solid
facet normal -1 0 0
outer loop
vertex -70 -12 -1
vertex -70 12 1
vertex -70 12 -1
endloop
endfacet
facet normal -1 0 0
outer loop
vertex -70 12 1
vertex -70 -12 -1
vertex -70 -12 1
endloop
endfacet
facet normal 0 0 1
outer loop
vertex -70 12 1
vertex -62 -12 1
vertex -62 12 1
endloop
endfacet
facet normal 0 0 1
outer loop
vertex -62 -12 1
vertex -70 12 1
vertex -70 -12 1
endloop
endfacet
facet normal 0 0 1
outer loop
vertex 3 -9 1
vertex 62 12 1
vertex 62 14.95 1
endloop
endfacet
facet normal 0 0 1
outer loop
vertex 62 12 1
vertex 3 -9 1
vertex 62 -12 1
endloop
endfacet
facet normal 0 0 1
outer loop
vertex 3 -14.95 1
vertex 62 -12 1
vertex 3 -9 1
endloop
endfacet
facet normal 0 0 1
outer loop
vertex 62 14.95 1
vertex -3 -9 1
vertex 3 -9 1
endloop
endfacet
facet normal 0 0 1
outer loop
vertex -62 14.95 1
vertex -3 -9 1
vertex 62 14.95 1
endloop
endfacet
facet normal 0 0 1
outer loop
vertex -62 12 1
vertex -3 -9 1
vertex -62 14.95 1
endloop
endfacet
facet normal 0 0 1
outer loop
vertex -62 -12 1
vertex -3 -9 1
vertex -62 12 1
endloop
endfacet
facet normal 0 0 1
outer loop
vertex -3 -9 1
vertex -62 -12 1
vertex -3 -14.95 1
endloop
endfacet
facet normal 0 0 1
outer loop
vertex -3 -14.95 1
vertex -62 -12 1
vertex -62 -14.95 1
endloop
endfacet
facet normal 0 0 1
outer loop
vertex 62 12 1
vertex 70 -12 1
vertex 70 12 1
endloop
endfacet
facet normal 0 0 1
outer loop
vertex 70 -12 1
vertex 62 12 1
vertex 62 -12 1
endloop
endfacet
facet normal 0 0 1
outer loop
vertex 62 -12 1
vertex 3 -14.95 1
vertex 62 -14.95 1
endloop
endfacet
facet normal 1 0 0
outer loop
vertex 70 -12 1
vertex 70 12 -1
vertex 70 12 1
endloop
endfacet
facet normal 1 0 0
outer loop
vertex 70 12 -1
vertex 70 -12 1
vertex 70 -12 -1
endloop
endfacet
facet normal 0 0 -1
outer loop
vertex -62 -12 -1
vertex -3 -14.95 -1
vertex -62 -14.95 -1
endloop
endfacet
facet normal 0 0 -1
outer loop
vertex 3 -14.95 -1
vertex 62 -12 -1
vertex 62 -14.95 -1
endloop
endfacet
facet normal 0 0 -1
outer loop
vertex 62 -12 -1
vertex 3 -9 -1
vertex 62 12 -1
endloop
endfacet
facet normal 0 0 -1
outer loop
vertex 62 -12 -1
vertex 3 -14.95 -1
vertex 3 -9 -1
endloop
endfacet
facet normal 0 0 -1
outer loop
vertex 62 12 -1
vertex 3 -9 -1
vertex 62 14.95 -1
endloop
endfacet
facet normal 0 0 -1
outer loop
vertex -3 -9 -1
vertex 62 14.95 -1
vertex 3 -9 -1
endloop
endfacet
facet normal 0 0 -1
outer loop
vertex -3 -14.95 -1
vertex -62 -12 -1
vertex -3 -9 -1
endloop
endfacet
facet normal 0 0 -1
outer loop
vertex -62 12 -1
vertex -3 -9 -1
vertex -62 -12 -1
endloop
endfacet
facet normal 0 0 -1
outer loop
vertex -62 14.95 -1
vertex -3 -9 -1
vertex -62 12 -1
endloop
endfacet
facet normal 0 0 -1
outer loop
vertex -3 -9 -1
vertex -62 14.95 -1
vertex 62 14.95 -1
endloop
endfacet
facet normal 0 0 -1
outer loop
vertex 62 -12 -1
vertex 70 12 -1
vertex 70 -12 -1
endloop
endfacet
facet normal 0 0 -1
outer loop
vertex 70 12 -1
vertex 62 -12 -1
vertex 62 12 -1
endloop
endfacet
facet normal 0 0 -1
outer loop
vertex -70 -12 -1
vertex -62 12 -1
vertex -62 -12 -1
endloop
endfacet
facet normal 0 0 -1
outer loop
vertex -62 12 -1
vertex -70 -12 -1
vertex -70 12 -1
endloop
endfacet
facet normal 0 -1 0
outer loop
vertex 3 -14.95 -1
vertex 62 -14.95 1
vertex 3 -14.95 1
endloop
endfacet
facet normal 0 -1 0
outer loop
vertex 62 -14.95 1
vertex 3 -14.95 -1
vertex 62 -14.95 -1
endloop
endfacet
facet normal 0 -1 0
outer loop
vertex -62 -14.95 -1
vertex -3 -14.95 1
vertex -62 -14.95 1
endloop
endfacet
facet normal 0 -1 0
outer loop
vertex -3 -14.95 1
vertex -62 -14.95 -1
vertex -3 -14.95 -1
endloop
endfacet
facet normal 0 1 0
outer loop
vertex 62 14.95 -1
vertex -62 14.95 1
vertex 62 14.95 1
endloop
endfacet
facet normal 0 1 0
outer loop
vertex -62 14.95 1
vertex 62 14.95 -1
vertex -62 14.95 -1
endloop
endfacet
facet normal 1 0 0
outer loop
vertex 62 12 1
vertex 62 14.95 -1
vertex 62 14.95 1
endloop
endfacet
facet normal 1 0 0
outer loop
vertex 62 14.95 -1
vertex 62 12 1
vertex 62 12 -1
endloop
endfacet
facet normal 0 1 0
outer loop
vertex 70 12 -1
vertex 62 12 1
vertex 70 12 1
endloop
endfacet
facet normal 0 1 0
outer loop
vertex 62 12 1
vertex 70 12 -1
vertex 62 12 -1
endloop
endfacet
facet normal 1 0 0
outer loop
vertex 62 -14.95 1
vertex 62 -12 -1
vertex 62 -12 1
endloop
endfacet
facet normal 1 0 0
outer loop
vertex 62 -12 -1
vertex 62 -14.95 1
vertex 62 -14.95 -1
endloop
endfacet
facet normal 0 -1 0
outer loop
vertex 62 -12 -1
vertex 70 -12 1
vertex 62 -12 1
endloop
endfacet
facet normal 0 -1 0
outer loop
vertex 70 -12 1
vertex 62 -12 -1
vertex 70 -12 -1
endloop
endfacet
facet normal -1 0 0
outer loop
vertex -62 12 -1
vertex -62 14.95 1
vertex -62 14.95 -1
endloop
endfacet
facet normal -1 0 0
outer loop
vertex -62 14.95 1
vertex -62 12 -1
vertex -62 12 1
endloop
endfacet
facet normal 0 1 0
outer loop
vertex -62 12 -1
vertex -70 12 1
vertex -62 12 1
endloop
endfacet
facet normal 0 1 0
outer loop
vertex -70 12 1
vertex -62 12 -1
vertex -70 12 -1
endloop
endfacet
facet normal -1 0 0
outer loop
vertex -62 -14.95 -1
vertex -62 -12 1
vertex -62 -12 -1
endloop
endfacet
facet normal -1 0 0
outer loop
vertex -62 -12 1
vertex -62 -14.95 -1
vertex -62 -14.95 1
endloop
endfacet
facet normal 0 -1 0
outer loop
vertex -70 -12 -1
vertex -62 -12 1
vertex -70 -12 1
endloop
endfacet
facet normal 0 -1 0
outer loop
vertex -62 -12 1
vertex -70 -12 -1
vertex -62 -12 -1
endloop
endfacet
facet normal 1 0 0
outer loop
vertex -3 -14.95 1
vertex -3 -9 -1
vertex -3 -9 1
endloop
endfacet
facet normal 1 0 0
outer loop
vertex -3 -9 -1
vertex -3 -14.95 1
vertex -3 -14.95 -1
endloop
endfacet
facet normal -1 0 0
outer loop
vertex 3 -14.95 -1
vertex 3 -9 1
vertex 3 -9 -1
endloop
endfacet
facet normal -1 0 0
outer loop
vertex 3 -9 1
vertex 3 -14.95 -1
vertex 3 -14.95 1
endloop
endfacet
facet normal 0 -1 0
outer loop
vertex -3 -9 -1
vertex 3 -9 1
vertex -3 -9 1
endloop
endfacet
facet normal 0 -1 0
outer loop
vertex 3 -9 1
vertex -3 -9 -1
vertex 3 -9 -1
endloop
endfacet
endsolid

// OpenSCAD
// file: constants.scad
WIDTH = 40;
LENGTH = 150;
BASE_HEIGHT = 20;
WALL_THICKNESS = 5;

DISTANCE_OF_HOLE_FROM_EDGE = 4;
KEY_SIZE = 4;

ACRYLIC_THICKNESS = 6.5;
SLOT_HEIGHT = 30;

HEIGHT_OF_HALF_WALL = 12;

RASPI_WIDTH = 23;
RASPI_LENGTH = 58;
HOLE_RADIUS = 1.2;

STRIP_HEIGHT = 2;
// main file
/*
  This file contains the strip that holds the ws2812b led lights
  author: Aliasgar Kutiyanawala
  last modified: 11/26/2017
*/

include <constants.scad>;

module strip(){
         
    difference(){
               
        cube([LENGTH - 2 * WALL_THICKNESS, WIDTH - 2 * WALL_THICKNESS - 0.1, STRIP_HEIGHT], center=true);
        
        //holes for supports
        keyX = LENGTH/2 - WALL_THICKNESS - DISTANCE_OF_HOLE_FROM_EDGE;
        
        translate([keyX, WIDTH/2 - DISTANCE_OF_HOLE_FROM_EDGE, STRIP_HEIGHT/2]){
            cube(KEY_SIZE * 2, center = true);
        }
        
        translate([keyX, -WIDTH/2 + DISTANCE_OF_HOLE_FROM_EDGE, STRIP_HEIGHT/2]){
            cube(KEY_SIZE * 2, center = true);
        }
        
        translate([-keyX, WIDTH/2 - DISTANCE_OF_HOLE_FROM_EDGE, STRIP_HEIGHT/2]){
            cube(KEY_SIZE * 2, center = true);
        }
        
        translate([-keyX, -WIDTH/2 + DISTANCE_OF_HOLE_FROM_EDGE, STRIP_HEIGHT/2]){
            cube(KEY_SIZE * 2, center = true);
        }
        
        //hole for wires
        translate([0, -WIDTH/2 + 2 * KEY_SIZE, STRIP_HEIGHT/2]){
            cube(KEY_SIZE * 1.5, center = true);
        }
    }
             
}

strip();
